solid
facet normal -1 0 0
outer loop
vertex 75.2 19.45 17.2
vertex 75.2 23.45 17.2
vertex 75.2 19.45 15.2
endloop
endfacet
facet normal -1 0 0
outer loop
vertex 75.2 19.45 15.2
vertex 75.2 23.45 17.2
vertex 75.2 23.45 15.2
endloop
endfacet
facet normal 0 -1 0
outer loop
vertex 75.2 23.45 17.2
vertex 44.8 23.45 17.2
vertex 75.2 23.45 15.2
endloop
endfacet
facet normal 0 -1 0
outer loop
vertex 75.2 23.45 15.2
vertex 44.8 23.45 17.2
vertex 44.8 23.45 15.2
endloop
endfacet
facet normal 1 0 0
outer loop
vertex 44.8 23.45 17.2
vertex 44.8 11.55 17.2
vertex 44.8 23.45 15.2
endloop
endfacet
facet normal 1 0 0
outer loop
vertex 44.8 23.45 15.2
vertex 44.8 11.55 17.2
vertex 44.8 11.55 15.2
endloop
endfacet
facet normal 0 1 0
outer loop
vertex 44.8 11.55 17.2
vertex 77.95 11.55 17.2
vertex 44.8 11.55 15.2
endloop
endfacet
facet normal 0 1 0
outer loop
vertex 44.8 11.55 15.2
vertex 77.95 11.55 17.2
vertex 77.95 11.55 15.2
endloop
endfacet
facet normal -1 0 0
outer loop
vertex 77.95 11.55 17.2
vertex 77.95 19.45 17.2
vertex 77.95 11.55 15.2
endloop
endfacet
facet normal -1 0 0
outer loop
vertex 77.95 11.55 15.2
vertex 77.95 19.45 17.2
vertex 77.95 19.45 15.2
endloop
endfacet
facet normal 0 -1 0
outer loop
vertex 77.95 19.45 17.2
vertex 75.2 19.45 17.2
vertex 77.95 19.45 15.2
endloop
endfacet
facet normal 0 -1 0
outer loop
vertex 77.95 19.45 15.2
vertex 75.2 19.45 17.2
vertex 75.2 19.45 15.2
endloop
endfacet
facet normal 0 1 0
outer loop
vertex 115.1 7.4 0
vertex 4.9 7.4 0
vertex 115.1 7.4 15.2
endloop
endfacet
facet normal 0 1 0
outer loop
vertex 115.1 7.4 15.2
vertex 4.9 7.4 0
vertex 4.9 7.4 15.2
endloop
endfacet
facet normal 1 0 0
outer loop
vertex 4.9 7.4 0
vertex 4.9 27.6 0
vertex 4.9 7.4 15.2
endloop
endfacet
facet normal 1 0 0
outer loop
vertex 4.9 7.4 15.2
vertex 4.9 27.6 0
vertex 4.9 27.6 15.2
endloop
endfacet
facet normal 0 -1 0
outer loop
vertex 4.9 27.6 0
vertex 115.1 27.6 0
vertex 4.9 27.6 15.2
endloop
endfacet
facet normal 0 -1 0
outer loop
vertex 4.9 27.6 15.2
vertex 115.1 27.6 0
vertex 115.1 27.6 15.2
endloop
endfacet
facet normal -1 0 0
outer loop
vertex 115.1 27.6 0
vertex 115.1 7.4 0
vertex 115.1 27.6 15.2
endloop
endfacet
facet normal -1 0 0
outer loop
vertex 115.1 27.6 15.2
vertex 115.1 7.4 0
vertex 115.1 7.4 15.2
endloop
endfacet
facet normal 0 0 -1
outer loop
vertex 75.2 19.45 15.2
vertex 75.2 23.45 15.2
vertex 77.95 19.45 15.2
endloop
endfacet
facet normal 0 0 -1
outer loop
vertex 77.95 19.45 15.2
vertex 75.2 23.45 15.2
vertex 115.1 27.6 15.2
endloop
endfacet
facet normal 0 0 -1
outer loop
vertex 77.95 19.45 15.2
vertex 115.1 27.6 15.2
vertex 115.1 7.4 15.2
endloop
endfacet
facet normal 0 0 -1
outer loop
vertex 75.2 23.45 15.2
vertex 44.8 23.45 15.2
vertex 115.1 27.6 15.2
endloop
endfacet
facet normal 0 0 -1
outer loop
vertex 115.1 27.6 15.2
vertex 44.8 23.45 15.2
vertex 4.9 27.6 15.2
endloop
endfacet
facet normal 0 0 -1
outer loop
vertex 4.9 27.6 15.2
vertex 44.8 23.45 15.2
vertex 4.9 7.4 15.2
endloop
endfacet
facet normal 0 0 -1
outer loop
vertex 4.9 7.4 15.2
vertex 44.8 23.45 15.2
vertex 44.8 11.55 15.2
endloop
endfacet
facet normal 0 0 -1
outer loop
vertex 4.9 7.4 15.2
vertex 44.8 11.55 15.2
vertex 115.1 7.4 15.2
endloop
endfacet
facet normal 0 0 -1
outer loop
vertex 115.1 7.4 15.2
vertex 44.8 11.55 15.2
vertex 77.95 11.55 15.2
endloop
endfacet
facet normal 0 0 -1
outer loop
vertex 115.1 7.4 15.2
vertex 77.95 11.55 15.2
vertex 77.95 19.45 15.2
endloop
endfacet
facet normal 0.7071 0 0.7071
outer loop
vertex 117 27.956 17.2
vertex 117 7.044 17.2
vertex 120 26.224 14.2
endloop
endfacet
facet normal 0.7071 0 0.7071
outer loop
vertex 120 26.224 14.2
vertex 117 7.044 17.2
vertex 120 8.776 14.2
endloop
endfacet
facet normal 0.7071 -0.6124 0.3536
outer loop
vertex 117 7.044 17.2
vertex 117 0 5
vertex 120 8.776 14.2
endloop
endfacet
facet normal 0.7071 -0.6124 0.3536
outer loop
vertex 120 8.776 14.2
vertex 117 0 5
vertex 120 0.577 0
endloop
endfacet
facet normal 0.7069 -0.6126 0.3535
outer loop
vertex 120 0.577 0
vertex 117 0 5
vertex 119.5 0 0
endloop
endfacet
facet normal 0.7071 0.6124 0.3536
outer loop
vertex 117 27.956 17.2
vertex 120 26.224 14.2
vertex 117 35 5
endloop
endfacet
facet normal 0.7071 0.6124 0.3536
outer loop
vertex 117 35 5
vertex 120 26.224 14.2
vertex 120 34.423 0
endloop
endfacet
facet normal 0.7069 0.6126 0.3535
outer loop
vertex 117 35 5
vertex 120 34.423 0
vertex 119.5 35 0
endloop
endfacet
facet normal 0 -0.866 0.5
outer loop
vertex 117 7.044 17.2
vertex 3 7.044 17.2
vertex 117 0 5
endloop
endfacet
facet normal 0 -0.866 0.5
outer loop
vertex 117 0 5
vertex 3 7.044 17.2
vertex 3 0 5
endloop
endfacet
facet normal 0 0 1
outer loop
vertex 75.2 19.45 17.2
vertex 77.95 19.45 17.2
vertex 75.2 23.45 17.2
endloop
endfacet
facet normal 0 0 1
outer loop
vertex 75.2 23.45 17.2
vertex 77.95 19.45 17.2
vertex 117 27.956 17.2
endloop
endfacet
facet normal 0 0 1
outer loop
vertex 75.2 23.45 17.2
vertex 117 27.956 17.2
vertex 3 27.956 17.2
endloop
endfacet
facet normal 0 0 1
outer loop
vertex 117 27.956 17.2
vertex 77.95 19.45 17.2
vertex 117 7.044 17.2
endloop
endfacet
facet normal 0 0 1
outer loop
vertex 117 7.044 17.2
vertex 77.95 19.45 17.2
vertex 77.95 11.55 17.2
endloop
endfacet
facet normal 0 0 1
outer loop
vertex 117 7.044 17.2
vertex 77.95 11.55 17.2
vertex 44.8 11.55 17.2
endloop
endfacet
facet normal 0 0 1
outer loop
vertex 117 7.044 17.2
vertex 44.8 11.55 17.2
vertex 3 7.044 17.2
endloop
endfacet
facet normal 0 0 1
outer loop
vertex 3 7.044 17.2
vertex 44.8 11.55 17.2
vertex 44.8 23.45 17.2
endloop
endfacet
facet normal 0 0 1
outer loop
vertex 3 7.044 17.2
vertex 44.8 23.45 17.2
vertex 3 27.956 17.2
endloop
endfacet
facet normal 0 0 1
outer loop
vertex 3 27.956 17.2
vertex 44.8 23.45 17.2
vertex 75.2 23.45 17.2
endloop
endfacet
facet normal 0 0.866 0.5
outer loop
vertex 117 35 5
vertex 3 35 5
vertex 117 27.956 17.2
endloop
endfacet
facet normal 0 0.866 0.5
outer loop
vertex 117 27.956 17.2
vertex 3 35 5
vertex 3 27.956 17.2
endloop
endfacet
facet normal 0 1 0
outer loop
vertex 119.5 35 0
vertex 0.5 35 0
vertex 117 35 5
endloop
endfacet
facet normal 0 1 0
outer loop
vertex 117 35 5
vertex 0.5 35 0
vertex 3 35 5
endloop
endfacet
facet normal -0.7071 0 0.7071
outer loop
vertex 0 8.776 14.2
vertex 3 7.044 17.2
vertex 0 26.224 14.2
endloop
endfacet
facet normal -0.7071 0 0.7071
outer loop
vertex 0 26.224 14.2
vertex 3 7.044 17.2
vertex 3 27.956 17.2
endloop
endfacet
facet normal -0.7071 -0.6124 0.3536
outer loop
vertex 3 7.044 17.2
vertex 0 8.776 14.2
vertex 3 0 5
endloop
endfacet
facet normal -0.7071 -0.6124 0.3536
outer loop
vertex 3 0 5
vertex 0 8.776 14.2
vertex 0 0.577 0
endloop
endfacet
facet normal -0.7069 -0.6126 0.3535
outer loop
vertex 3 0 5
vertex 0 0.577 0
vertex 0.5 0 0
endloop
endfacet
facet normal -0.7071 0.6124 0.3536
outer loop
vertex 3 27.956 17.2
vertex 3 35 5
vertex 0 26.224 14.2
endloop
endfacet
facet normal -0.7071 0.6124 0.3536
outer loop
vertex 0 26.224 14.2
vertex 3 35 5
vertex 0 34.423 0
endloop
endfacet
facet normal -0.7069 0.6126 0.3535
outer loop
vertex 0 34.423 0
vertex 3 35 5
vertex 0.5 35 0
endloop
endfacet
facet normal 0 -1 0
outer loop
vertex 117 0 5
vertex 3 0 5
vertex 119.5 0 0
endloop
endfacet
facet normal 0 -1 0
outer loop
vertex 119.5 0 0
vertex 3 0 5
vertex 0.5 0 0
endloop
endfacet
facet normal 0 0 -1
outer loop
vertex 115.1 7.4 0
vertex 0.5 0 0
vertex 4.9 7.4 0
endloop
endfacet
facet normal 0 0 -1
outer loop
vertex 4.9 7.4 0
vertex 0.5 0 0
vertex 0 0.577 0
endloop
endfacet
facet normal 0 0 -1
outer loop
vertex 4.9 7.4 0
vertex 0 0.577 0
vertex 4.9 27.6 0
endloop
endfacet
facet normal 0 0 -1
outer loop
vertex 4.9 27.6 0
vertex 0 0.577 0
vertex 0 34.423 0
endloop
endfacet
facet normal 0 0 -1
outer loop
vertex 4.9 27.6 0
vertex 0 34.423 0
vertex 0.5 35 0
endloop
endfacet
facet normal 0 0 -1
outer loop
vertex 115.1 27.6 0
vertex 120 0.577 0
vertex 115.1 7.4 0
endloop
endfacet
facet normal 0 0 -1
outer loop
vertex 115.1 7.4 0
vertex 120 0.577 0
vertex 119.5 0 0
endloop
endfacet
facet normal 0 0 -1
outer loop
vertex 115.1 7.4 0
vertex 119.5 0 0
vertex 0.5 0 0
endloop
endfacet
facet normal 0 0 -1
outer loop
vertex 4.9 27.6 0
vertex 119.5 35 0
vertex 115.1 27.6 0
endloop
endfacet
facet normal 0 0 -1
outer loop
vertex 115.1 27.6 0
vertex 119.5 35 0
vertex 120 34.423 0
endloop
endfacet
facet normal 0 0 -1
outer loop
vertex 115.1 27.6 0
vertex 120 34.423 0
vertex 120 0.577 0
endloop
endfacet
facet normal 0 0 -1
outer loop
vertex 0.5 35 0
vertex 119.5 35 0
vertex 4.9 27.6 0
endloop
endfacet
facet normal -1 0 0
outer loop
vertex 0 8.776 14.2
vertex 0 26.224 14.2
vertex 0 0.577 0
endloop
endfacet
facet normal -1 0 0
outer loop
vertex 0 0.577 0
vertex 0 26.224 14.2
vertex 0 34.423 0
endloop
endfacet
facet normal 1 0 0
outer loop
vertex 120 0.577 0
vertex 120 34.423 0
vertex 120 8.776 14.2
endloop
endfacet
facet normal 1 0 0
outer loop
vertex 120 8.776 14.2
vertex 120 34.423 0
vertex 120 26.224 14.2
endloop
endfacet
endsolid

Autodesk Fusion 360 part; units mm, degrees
sketch "Sketch1" plane through (0, 0, 0) normal (0, 0, 1) x (1, 0, 0)
  line L0 (0, 0) -> (120, 0)
  line L1 (120, 0) -> (120, 35)
  line L2 (120, 35) -> (0, 35)
  line L3 (0, 35) -> (0, 0)
  dimension "d1" = 120
  dimension "d2" = 35
extrude "Extrude1" add sketch "Sketch1" along normal blind 17.2
chamfer "Chamfer1" distance 7.0437 angle 60 2 edges at (60, 0, 17.2) (60, 35, 17.2) measured on face at (40, 23.3333, 17.2) measured on face at (40, 23.3333, 17.2)
chamfer "Chamfer2" distance 3 angle 45 6 edges at (0, 3.5218, 11.1) (0, 31.4782, 11.1) (0, 17.5, 17.2) (120, 17.5, 17.2) (120, 3.5218, 11.1) (120, 31.4782, 11.1) measured on face at (40, 4.6958, 13.1333) measured on face at (80, 30.3042, 13.1333) measured on face at (40, 20.9854, 17.2) measured on face at (40, 20.9854, 17.2) measured on face at (40, 4.6958, 13.1333) measured on face at (80, 30.3042, 13.1333)
sketch "Sketch2" plane through (0, 0, 0) normal (0, 0, -1) x (1, 0, 0)
  line L0 (0, -0.5773) -> (0, -34.4227)
  line L1 (120, -34.4227) -> (120, -0.5773)
  line L2 (115.1, -7.4) -> (4.9, -7.4)
  line L3 (4.9, -7.4) -> (4.9, -27.6)
  line L4 (4.9, -27.6) -> (115.1, -27.6)
  line L5 (115.1, -27.6) -> (115.1, -7.4)
  line L6 (115.1, -7.4) -> (4.9, -27.6) construction
  line L7 (4.9, -7.4) -> (115.1, -27.6) construction
  line L8 (120, -0.5773) -> (119.5, 0)
  line L9 (0.5, 0) -> (0, -0.5773)
  line L10 (0, -34.4227) -> (0.5, -35)
  line L11 (119.5, -35) -> (120, -34.4227)
  line L12 (60, 0) -> (60, -35) construction
  line L13 (119.5, 0) -> (0.5, 0)
  line L14 (0.5, -35) -> (119.5, -35)
  point P0 (60, -17.5)
  dimension "d9" = 110.2
  dimension "d10" = 20.2
extrude "Extrude2" cut sketch "Sketch2" against normal blind 15.2 contours L2 L3 L4 L5
sketch "Sketch3" plane through (0, 0, 17.2) normal (0, 0, 1) x (-1, 0, 0)
  line L0 (-117, -7.0437) -> (-117, -27.9563)
  line L1 (-117, -27.9563) -> (-3, -27.9563)
  line L2 (-3, -27.9563) -> (-3, -7.0437)
  line L3 (-3, -7.0437) -> (-117, -7.0437)
  line L4 (-60, -27.9563) -> (-60, -7.0437) construction
  line L5 (-117, -17.5) -> (-3, -17.5) construction
  line L6 (-44.8, -11.55) -> (-75.2, -11.55)
  line L7 (-75.2, -11.55) -> (-75.2, -23.45)
  line L8 (-75.2, -23.45) -> (-44.8, -23.45)
  line L9 (-44.8, -23.45) -> (-44.8, -11.55)
  line L10 (-75.2, -11.55) -> (-77.95, -11.55)
  line L11 (-77.95, -11.55) -> (-77.95, -19.45)
  line L12 (-77.95, -19.45) -> (-75.2, -19.45)
  line L13 (-75.2, -19.45) -> (-75.2, -11.55)
  line L14 (-60, -23.45) -> (-60, -11.55) construction
  dimension "d13" = 30.4
  dimension "d14" = 11.9
  dimension "d15" = 2.75
  dimension "d16" = 7.9
extrude "Extrude3" cut sketch "Sketch3" against normal blind 2 contours L6 L7 L8 L9 L13 | L7 L10 L11 L12 L13
equation "d3 = 10 mm - 2.8 mm + 5 mm + 5 mm"
equation "d11 = -5.2 mm - 5 mm - 5 mm"
equation "d13 = 30 mm + 0.4 mm"
equation "d14 = 11.5 mm + 0.4 mm"
equation "d16 = 7.5 mm + 0.4 mm"
